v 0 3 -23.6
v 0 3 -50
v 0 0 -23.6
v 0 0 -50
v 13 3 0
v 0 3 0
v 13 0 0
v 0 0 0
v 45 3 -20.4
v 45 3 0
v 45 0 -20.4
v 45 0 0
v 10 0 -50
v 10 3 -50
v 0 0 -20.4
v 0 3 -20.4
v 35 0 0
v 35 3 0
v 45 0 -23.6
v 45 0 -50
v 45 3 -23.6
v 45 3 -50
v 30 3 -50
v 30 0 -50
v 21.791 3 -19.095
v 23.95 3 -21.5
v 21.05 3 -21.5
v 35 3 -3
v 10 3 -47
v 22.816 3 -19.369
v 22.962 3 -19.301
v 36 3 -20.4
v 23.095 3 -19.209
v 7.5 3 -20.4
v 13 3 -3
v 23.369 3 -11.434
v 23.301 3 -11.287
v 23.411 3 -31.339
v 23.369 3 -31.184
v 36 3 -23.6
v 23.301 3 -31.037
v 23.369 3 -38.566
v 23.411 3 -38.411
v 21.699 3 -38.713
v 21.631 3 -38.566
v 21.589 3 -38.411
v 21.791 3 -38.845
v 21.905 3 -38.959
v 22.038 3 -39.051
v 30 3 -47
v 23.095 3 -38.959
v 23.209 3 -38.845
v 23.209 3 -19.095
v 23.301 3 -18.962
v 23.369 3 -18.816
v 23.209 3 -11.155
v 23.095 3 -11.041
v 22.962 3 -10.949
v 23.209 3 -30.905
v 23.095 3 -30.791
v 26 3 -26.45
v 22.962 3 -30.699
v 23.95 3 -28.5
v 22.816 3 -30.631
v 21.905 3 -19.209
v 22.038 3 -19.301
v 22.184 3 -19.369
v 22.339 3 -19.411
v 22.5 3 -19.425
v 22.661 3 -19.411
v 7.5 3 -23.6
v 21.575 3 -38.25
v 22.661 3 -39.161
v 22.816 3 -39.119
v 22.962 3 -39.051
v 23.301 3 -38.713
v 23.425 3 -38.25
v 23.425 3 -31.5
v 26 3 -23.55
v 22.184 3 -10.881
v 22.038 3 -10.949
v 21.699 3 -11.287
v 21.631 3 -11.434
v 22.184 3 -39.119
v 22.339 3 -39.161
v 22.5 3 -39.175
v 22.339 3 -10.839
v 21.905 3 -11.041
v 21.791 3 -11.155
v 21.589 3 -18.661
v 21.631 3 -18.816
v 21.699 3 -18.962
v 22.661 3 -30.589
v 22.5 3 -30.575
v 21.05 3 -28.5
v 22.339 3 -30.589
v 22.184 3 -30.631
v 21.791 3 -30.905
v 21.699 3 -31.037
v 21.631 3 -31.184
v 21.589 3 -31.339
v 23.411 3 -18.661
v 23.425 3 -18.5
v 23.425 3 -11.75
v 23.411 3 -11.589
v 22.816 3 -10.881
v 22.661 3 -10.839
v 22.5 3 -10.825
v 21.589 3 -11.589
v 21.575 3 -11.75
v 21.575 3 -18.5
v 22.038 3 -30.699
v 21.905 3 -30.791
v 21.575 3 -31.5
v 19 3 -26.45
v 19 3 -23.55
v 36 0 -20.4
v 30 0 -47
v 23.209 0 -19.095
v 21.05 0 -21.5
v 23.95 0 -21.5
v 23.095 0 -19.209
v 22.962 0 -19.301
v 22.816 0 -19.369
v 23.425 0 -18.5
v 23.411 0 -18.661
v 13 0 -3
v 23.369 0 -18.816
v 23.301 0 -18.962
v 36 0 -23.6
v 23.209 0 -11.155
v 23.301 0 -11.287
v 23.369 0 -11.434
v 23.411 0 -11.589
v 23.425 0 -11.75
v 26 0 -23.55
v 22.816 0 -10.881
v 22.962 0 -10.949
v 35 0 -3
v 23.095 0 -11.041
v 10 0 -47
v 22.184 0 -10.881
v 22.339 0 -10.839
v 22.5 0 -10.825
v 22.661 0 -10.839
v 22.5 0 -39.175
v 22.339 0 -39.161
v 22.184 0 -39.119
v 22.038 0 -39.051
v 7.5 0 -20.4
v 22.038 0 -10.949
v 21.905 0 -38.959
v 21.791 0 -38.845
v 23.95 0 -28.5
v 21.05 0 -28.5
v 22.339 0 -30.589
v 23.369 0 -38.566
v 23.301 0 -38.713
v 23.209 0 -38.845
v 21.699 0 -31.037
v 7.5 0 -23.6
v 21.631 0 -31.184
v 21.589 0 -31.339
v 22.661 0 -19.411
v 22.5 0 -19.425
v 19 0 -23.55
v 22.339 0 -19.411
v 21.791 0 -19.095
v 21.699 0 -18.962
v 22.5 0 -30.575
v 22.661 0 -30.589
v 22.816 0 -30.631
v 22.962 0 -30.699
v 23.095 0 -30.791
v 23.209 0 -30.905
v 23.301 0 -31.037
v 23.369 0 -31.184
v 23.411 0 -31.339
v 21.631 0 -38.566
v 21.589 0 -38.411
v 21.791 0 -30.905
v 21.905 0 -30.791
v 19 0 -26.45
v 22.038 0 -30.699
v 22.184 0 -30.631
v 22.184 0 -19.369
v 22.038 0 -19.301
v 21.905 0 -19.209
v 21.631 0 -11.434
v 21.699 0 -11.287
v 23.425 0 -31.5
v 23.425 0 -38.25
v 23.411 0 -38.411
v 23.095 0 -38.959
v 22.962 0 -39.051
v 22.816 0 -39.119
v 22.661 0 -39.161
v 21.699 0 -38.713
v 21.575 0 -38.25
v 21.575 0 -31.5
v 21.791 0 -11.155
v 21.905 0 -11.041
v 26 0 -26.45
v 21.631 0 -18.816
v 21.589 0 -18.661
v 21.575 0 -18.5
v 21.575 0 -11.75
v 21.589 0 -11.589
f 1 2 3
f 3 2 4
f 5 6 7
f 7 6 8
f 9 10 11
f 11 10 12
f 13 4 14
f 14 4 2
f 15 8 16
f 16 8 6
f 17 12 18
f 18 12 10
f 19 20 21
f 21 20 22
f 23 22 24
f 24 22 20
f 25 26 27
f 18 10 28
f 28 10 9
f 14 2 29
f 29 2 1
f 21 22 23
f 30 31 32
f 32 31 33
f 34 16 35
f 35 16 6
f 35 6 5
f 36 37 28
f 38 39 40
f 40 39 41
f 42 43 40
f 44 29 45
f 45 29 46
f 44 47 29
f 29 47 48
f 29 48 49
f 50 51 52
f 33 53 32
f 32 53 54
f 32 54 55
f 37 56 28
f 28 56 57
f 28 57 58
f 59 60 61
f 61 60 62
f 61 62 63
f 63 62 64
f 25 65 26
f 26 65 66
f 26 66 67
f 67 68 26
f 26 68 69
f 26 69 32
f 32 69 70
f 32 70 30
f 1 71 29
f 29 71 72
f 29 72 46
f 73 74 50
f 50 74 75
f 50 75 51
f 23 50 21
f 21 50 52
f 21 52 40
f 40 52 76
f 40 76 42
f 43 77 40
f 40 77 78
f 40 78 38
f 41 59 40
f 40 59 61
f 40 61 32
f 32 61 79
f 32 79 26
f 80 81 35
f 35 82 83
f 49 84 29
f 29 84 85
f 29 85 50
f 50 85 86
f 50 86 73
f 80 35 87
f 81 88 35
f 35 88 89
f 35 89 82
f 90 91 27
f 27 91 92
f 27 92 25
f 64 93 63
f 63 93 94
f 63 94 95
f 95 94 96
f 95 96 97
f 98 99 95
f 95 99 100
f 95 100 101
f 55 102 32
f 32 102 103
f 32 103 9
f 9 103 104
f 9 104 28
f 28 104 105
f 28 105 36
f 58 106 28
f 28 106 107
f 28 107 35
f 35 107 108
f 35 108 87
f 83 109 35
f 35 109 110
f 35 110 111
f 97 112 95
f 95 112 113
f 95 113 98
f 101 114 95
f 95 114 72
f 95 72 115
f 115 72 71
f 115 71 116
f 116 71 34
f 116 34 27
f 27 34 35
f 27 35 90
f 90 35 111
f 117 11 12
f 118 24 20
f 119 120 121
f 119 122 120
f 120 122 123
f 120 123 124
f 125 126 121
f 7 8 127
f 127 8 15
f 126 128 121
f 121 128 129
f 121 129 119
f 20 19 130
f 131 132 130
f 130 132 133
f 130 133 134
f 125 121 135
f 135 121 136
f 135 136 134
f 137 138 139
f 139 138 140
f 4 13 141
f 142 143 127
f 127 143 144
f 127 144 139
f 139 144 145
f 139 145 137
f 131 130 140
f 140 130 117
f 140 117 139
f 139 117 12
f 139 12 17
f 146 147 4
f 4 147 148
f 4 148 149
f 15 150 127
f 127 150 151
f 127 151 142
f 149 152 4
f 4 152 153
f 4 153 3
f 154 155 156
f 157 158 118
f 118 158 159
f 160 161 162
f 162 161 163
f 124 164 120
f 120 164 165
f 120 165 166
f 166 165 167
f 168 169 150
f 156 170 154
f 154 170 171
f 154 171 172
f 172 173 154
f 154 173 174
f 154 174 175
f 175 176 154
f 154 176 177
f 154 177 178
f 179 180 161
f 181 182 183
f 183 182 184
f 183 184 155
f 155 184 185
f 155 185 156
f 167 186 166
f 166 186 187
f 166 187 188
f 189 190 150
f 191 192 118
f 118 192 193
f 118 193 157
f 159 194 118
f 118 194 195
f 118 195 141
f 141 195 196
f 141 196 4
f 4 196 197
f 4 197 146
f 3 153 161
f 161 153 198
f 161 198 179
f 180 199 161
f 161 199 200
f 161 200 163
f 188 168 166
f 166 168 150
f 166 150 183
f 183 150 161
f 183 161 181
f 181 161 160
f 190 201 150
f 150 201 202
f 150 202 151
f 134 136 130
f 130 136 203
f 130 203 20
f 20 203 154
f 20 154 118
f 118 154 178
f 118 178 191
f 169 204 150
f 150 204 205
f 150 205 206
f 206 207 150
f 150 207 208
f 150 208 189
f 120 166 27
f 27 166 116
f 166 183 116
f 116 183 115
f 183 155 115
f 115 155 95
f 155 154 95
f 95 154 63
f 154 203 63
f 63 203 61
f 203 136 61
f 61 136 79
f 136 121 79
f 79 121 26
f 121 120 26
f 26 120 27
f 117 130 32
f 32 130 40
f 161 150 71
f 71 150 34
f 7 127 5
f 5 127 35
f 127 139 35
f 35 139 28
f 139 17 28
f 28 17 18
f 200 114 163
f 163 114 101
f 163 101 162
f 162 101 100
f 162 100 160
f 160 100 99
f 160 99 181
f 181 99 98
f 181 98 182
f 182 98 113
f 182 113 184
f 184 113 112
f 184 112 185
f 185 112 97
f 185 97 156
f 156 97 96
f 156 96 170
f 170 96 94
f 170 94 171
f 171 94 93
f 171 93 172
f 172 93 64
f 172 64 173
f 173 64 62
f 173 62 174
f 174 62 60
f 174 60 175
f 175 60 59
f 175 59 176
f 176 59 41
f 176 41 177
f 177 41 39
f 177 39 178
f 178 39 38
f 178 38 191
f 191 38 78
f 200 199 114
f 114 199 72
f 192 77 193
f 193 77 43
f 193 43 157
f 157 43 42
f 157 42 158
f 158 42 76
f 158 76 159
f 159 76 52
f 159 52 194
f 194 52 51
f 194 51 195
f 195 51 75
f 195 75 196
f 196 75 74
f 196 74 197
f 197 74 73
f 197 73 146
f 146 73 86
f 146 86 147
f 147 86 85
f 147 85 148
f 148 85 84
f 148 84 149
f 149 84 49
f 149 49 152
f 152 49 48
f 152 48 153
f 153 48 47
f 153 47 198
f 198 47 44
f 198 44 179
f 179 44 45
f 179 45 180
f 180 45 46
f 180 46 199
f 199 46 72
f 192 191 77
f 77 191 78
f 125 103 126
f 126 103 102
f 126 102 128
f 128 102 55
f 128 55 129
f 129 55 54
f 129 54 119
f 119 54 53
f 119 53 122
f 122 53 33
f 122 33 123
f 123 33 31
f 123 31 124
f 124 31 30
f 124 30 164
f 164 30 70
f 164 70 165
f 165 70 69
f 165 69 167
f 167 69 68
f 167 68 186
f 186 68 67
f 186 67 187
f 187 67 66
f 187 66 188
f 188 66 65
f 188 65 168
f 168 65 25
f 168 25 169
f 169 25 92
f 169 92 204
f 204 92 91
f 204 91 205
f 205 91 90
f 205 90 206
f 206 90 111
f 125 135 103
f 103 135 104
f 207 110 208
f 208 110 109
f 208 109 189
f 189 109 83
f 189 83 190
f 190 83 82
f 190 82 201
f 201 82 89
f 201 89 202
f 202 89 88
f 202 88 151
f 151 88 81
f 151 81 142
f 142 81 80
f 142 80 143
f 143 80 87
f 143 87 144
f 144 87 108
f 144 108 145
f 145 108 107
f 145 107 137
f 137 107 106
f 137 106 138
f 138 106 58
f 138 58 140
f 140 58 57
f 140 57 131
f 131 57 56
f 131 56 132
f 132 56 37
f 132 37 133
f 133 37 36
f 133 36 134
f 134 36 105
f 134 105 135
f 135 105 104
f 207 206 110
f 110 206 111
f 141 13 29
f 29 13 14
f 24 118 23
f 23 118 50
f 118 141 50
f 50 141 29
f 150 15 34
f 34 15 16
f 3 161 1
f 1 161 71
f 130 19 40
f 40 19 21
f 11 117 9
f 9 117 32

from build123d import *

# Parameters (mm, degrees)
SKETCH1_W           = 45
SKETCH1_H           = 50
BOSS_EXTRUDE1_DEPTH = 3
SKETCH2_W           = 20
SKETCH2_H           = 3
SKETCH2_W_2         = 22
SKETCH2_W_3         = 7.5
SKETCH2_W_4         = 9
CUT_EXTRUDE1_DEPTH  = 4
SKETCH4_W           = 7.5
SKETCH4_H           = 0.1
SKETCH4_W_2         = 9
CUT_EXTRUDE2_DEPTH  = 4


with BuildPart() as part:
    # Sketch1 → Boss-Extrude1 (new body)
    with BuildSketch(Plane(origin=(0, 0, 0), x_dir=(1, 0, 0), z_dir=(0, 1, 0))):
        with Locations((22.5, 25)):
            Rectangle(SKETCH1_W, SKETCH1_H)
    extrude(amount=BOSS_EXTRUDE1_DEPTH)

    # Sketch2 → Cut-Extrude1 (cut, through all)
    with BuildSketch(Plane(origin=(0, 3, 0), x_dir=(1, 0, 0), z_dir=(0, 1, 0))):
        with Locations((20, 48.5)):
            Rectangle(SKETCH2_W, SKETCH2_H)
        with Locations((24, 1.5)):
            Rectangle(SKETCH2_W_2, SKETCH2_H)
        with Locations((3.75, 22)):
            Rectangle(SKETCH2_W_3, SKETCH2_H)
        with Locations((40.5, 22)):
            Rectangle(SKETCH2_W_4, SKETCH2_H)
        Polygon((21.050252532, 21.5), (23.949747468, 21.5), (26, 23.550252532), (26, 26.449747468), (23.949747468, 28.5), (21.050252532, 28.5), (19, 26.449747468), (19, 23.550252532), align=None)
        with BuildLine():
            Line((21.575, 31.5), (21.575, 38.25))
            ThreePointArc((21.575, 38.25), (22.5, 39.175), (23.425, 38.25))
            Line((23.425, 38.25), (23.425, 31.5))
            ThreePointArc((23.425, 31.5), (22.5, 30.575), (21.575, 31.5))
        make_face()
        with BuildLine():
            Line((23.425, 18.5), (23.425, 11.75))
            ThreePointArc((23.425, 11.75), (22.5, 10.825), (21.575, 11.75))
            Line((21.575, 11.75), (21.575, 18.5))
            ThreePointArc((21.575, 18.5), (22.5, 19.425), (23.425, 18.5))
        make_face()
    extrude(amount=-CUT_EXTRUDE1_DEPTH, mode=Mode.SUBTRACT)

    # Sketch4 → Cut-Extrude2 (cut, through all)
    with BuildSketch(Plane(origin=(0, 3, 0), x_dir=(1, 0, 0), z_dir=(0, 1, 0))):
        with Locations((3.75, 23.55)):
            Rectangle(SKETCH4_W, SKETCH4_H)
        with Locations((3.75, 20.45)):
            Rectangle(SKETCH4_W, SKETCH4_H)
        with Locations((40.5, 20.45)):
            Rectangle(SKETCH4_W_2, SKETCH4_H)
        with Locations((40.5, 23.55)):
            Rectangle(SKETCH4_W_2, SKETCH4_H)
    extrude(amount=-CUT_EXTRUDE2_DEPTH, mode=Mode.SUBTRACT)


solid = part.part
